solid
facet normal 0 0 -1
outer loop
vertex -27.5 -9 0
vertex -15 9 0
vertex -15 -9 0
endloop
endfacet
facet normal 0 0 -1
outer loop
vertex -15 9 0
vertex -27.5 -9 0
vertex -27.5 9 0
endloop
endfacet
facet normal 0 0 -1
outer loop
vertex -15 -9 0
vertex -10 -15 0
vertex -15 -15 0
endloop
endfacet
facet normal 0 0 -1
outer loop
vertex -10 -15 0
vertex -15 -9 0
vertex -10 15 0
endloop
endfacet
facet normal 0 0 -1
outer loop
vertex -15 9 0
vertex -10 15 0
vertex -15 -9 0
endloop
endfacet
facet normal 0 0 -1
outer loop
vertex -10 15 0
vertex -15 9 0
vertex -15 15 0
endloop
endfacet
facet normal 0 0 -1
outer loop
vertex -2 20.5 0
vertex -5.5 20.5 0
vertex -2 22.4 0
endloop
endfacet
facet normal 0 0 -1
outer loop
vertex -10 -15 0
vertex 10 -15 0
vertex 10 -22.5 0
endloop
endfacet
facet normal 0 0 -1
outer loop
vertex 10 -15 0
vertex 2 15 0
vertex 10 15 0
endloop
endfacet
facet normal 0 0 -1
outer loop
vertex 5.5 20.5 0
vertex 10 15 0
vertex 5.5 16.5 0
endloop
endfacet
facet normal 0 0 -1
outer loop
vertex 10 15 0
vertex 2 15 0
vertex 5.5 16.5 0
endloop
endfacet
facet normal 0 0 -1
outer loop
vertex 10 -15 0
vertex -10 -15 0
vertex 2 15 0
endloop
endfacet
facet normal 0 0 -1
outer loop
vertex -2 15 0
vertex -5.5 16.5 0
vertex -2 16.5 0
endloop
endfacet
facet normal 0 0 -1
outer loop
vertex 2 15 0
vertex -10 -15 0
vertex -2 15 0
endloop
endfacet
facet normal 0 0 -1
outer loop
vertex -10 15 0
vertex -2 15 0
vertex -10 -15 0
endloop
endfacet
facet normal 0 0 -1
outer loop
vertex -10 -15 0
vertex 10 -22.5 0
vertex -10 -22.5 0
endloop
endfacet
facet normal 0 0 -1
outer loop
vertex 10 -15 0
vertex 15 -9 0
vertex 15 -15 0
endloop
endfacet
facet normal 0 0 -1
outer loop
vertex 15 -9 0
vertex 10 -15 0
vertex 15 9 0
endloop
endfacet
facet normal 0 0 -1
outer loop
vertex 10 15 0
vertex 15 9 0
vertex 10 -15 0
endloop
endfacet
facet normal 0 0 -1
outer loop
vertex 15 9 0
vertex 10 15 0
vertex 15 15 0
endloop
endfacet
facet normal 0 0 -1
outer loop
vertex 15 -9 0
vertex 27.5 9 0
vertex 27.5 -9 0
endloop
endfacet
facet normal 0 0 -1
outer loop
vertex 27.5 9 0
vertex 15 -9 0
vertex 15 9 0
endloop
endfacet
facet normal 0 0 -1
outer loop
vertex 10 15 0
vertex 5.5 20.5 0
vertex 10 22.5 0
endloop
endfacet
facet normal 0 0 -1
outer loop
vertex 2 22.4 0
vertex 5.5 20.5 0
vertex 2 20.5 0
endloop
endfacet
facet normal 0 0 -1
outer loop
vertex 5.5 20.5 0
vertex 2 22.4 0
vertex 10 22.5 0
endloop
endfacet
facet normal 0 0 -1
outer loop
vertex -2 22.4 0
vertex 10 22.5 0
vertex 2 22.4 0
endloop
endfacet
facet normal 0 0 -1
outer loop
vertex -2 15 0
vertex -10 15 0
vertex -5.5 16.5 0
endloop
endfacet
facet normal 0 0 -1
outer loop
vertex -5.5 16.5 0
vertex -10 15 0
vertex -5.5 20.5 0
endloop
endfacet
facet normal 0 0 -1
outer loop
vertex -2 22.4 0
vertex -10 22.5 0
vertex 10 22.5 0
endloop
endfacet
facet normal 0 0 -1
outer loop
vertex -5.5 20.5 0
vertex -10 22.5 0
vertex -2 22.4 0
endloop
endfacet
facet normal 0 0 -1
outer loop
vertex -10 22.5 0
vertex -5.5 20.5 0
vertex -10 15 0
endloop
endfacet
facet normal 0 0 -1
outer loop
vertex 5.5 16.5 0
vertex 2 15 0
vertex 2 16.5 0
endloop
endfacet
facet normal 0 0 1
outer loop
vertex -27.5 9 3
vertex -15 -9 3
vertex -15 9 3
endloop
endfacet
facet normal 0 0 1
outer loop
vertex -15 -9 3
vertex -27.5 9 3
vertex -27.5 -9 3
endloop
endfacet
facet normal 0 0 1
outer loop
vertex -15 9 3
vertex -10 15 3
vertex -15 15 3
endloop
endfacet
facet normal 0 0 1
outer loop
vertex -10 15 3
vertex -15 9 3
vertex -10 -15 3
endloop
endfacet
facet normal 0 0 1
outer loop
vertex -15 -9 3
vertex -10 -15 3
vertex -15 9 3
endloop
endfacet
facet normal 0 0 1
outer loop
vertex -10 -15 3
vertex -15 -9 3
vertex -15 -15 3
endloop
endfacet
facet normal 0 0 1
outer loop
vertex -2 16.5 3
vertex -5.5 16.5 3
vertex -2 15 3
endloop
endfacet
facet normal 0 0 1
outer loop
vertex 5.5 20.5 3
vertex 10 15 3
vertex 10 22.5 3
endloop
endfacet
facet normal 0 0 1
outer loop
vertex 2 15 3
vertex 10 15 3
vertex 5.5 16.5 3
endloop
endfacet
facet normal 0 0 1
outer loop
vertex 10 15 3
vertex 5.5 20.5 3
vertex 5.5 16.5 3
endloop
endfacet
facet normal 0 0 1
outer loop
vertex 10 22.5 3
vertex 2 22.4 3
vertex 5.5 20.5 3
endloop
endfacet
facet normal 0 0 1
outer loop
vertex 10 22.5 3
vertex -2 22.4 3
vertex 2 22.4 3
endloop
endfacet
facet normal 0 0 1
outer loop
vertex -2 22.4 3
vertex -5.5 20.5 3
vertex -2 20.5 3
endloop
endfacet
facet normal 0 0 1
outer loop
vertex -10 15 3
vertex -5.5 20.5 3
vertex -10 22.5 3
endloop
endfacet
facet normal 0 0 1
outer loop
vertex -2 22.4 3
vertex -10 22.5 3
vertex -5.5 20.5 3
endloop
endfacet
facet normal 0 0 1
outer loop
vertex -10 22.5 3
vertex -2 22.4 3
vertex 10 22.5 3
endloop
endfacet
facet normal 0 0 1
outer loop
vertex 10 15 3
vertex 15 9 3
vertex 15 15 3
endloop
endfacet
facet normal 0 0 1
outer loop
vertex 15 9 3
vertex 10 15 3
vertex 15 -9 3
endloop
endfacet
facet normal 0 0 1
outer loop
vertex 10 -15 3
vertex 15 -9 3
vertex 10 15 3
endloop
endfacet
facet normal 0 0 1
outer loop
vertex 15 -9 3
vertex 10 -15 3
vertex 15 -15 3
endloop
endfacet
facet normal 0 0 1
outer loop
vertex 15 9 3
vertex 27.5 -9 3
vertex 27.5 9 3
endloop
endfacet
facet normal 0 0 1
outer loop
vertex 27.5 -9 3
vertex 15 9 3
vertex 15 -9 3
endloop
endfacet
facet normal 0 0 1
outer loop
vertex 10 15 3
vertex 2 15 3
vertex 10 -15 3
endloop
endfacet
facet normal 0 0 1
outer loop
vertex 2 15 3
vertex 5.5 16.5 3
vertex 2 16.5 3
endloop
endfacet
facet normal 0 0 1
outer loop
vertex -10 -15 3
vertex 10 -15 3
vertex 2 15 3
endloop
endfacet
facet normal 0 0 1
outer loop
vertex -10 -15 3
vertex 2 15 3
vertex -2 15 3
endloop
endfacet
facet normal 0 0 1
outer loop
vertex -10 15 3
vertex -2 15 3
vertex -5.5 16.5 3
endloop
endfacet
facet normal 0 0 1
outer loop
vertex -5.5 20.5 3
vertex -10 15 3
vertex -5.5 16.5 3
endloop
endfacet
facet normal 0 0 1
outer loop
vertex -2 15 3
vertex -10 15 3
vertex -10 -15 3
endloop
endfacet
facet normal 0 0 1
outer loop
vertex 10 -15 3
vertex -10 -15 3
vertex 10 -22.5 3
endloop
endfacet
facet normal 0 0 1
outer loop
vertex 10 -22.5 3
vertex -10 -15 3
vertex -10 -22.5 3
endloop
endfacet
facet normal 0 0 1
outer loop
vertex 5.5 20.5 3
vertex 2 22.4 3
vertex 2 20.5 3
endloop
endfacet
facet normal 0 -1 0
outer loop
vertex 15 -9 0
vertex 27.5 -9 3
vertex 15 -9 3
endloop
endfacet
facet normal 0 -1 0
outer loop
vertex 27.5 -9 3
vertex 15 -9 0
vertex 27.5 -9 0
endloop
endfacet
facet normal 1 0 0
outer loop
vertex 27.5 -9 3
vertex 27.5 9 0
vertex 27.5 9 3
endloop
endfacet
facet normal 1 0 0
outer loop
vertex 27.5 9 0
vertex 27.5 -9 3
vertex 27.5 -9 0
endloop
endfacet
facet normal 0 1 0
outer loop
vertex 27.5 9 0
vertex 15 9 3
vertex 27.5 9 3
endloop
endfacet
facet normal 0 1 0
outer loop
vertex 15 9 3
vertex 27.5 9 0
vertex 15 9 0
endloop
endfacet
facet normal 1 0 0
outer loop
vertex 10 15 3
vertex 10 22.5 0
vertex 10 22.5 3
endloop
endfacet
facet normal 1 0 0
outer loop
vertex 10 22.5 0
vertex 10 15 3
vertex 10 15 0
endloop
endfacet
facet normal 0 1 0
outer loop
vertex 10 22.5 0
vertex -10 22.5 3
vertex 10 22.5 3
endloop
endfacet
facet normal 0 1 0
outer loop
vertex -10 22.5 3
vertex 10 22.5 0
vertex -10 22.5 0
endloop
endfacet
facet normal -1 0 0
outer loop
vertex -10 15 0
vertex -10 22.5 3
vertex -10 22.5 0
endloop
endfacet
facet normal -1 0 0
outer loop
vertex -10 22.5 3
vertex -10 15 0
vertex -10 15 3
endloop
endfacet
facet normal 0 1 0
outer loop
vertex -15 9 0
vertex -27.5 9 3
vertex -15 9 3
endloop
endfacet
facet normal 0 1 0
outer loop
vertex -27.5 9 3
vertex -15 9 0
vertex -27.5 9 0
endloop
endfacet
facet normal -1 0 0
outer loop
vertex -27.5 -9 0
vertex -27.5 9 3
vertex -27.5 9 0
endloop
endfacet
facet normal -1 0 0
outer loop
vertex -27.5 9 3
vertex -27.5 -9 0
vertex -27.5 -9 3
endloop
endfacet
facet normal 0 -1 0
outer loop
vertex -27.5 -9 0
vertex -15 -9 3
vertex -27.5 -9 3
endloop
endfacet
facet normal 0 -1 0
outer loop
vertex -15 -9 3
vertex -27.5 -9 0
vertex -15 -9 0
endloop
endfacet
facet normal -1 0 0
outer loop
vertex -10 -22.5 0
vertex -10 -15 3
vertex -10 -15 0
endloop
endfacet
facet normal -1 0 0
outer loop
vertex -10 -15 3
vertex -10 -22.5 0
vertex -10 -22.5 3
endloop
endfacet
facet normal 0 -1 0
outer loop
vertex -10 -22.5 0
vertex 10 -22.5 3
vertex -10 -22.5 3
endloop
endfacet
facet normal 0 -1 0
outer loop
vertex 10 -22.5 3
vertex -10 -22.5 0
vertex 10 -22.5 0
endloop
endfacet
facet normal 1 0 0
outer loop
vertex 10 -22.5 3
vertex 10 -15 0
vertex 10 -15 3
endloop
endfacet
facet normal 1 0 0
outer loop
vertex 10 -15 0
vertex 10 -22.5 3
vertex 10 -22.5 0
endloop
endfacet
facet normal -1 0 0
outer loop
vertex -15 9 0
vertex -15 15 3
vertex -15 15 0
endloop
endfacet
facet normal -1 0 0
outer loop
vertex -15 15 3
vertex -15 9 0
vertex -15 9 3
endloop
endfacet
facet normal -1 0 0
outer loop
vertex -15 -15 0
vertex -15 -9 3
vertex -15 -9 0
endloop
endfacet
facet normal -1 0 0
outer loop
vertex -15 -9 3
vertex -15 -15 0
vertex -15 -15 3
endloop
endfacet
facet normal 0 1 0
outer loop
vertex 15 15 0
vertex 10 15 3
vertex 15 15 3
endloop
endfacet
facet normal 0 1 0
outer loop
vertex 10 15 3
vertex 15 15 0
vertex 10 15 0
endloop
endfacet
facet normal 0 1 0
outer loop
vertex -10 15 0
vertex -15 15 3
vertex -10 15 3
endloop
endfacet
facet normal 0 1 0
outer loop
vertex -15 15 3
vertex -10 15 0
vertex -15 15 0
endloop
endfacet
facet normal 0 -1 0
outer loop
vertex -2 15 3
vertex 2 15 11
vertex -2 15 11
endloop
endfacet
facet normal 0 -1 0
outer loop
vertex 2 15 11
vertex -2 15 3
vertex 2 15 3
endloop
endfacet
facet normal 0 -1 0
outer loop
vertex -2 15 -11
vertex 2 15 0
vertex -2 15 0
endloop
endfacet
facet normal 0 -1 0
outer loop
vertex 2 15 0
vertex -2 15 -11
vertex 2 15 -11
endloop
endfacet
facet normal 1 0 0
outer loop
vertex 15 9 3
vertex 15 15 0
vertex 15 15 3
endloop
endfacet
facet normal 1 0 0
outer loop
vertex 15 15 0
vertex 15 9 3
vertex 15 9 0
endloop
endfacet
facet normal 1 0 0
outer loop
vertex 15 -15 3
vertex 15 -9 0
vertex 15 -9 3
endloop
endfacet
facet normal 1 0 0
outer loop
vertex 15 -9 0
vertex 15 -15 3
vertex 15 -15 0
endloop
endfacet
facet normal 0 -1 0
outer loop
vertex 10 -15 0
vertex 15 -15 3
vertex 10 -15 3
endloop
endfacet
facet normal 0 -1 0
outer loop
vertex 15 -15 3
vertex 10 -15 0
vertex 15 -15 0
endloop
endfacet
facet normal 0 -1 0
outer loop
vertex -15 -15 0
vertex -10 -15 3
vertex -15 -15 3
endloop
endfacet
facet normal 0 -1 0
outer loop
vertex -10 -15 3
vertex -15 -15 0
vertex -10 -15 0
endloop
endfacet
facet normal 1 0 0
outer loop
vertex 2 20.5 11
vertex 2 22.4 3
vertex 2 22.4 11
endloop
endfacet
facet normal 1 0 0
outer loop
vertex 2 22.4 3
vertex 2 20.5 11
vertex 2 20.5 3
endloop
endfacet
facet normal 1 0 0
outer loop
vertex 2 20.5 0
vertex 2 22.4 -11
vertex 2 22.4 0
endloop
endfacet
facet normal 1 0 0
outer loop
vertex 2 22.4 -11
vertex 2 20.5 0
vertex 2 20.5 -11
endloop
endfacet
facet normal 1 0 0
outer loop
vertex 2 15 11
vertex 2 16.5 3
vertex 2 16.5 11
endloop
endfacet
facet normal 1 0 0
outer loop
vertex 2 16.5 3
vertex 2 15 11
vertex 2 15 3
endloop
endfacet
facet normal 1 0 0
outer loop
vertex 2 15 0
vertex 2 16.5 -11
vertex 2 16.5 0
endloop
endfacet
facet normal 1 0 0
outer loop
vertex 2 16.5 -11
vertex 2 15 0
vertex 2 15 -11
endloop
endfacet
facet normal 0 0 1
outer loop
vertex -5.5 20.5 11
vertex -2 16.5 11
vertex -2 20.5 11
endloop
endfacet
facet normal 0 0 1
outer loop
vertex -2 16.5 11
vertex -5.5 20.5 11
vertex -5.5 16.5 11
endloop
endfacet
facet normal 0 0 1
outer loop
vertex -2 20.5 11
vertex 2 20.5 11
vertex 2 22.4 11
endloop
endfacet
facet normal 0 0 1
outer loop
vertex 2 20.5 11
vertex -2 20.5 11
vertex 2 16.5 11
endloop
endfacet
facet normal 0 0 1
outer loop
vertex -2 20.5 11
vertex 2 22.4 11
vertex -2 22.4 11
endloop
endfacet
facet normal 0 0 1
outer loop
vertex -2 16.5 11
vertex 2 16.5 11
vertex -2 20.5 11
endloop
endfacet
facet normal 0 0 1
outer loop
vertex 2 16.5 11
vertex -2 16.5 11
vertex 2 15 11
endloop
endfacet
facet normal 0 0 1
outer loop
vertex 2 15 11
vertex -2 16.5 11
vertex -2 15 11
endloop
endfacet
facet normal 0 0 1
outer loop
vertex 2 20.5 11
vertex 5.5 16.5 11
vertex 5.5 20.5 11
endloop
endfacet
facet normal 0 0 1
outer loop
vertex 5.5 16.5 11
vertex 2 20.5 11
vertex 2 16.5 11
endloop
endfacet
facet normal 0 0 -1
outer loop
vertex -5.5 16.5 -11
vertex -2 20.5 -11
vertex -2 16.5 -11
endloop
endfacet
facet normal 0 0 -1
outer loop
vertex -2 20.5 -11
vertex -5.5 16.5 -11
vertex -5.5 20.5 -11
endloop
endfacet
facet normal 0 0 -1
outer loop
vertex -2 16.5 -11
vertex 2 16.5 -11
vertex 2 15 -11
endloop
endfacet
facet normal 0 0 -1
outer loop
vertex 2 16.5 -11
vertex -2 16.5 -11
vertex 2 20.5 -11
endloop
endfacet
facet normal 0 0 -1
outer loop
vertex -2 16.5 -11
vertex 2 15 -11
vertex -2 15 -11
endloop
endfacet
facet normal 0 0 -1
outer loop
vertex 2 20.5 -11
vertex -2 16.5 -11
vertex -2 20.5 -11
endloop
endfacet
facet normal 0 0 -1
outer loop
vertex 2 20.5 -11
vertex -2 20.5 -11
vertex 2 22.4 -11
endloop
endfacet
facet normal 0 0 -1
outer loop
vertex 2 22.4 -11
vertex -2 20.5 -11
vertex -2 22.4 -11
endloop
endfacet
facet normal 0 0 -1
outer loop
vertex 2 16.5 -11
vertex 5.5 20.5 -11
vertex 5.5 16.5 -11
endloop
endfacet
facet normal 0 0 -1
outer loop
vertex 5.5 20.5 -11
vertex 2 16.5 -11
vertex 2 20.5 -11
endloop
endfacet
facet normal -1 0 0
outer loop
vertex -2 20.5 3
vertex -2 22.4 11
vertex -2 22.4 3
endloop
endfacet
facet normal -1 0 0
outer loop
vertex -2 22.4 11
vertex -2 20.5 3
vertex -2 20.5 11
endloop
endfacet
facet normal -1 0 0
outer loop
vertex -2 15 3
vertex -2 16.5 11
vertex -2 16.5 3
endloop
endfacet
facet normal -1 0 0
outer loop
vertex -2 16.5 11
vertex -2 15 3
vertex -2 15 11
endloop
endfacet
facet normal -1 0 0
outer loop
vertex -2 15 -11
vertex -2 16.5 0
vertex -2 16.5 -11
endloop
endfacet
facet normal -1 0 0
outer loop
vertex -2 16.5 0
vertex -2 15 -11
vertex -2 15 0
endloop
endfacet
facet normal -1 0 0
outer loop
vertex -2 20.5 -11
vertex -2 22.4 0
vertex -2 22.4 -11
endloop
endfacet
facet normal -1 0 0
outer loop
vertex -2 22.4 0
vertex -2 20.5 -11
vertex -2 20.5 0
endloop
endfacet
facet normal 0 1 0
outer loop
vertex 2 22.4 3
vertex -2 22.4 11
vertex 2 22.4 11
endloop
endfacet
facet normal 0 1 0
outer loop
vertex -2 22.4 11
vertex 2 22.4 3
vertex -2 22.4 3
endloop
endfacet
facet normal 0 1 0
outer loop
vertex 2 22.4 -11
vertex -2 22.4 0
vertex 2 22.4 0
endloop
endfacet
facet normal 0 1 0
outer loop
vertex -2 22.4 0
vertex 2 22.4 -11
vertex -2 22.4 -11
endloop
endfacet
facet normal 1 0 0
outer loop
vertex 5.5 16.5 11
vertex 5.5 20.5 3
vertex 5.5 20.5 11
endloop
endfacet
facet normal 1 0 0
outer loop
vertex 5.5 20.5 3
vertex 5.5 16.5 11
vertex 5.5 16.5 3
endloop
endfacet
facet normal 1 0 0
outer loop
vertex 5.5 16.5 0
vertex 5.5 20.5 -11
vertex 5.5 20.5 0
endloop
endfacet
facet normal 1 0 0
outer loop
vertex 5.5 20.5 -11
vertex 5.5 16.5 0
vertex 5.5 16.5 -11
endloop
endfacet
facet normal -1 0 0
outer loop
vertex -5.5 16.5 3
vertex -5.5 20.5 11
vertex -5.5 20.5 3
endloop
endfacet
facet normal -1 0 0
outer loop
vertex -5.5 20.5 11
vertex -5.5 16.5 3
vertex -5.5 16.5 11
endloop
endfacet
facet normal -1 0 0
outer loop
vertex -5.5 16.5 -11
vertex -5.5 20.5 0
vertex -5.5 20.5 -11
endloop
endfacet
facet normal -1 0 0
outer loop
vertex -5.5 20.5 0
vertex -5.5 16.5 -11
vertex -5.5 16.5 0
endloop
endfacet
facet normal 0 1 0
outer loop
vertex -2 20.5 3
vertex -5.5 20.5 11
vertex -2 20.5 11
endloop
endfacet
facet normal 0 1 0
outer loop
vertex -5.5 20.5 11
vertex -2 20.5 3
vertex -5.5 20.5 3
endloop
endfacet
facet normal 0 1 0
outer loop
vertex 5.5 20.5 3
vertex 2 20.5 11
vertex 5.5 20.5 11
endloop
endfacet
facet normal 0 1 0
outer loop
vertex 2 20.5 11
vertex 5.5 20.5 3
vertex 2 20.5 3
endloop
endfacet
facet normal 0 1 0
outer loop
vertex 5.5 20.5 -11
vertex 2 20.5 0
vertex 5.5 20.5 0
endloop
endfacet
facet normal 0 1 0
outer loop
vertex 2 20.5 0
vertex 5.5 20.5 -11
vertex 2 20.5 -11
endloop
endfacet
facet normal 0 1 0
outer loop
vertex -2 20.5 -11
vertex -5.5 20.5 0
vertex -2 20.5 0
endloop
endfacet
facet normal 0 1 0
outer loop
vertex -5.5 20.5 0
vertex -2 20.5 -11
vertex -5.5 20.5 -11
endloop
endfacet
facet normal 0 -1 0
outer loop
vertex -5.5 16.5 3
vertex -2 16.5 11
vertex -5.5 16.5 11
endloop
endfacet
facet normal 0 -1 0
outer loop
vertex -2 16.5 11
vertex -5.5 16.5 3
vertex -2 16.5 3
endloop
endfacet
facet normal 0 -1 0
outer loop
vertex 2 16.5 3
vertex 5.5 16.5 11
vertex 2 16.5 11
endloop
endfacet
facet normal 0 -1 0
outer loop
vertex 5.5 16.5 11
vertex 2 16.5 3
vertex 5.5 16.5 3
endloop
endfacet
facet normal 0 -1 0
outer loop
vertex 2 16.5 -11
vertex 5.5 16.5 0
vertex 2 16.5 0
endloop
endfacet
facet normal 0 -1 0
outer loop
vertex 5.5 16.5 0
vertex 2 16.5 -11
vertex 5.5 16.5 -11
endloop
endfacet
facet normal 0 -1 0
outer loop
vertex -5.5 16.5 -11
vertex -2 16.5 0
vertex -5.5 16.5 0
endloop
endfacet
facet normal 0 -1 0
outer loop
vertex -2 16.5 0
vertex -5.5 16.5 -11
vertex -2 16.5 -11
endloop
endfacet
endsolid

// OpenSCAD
// FLOODSHIFT hospital | 55 x 45 x 22 mm max
// Flat 30 x 30 mm centered ArUco pad. Raised medical cross sits outside it.
$fn=48;
union(){
  linear_extrude(3) polygon([[-27.5,-9],[-10,-9],[-10,-22.5],[10,-22.5],[10,-9],[27.5,-9],[27.5,9],[10,9],[10,22.5],[-10,22.5],[-10,9],[-27.5,9]]);
  // centered flat marker pad
  linear_extrude(3) square([30,30],center=true);
  // Tall cross glyph in the north arm: top-view cross, total height 22 mm.
  translate([0,18.7,0]) cube([4,7.4,22],center=true);
  translate([0,18.5,0]) cube([11,4,22],center=true);
}
